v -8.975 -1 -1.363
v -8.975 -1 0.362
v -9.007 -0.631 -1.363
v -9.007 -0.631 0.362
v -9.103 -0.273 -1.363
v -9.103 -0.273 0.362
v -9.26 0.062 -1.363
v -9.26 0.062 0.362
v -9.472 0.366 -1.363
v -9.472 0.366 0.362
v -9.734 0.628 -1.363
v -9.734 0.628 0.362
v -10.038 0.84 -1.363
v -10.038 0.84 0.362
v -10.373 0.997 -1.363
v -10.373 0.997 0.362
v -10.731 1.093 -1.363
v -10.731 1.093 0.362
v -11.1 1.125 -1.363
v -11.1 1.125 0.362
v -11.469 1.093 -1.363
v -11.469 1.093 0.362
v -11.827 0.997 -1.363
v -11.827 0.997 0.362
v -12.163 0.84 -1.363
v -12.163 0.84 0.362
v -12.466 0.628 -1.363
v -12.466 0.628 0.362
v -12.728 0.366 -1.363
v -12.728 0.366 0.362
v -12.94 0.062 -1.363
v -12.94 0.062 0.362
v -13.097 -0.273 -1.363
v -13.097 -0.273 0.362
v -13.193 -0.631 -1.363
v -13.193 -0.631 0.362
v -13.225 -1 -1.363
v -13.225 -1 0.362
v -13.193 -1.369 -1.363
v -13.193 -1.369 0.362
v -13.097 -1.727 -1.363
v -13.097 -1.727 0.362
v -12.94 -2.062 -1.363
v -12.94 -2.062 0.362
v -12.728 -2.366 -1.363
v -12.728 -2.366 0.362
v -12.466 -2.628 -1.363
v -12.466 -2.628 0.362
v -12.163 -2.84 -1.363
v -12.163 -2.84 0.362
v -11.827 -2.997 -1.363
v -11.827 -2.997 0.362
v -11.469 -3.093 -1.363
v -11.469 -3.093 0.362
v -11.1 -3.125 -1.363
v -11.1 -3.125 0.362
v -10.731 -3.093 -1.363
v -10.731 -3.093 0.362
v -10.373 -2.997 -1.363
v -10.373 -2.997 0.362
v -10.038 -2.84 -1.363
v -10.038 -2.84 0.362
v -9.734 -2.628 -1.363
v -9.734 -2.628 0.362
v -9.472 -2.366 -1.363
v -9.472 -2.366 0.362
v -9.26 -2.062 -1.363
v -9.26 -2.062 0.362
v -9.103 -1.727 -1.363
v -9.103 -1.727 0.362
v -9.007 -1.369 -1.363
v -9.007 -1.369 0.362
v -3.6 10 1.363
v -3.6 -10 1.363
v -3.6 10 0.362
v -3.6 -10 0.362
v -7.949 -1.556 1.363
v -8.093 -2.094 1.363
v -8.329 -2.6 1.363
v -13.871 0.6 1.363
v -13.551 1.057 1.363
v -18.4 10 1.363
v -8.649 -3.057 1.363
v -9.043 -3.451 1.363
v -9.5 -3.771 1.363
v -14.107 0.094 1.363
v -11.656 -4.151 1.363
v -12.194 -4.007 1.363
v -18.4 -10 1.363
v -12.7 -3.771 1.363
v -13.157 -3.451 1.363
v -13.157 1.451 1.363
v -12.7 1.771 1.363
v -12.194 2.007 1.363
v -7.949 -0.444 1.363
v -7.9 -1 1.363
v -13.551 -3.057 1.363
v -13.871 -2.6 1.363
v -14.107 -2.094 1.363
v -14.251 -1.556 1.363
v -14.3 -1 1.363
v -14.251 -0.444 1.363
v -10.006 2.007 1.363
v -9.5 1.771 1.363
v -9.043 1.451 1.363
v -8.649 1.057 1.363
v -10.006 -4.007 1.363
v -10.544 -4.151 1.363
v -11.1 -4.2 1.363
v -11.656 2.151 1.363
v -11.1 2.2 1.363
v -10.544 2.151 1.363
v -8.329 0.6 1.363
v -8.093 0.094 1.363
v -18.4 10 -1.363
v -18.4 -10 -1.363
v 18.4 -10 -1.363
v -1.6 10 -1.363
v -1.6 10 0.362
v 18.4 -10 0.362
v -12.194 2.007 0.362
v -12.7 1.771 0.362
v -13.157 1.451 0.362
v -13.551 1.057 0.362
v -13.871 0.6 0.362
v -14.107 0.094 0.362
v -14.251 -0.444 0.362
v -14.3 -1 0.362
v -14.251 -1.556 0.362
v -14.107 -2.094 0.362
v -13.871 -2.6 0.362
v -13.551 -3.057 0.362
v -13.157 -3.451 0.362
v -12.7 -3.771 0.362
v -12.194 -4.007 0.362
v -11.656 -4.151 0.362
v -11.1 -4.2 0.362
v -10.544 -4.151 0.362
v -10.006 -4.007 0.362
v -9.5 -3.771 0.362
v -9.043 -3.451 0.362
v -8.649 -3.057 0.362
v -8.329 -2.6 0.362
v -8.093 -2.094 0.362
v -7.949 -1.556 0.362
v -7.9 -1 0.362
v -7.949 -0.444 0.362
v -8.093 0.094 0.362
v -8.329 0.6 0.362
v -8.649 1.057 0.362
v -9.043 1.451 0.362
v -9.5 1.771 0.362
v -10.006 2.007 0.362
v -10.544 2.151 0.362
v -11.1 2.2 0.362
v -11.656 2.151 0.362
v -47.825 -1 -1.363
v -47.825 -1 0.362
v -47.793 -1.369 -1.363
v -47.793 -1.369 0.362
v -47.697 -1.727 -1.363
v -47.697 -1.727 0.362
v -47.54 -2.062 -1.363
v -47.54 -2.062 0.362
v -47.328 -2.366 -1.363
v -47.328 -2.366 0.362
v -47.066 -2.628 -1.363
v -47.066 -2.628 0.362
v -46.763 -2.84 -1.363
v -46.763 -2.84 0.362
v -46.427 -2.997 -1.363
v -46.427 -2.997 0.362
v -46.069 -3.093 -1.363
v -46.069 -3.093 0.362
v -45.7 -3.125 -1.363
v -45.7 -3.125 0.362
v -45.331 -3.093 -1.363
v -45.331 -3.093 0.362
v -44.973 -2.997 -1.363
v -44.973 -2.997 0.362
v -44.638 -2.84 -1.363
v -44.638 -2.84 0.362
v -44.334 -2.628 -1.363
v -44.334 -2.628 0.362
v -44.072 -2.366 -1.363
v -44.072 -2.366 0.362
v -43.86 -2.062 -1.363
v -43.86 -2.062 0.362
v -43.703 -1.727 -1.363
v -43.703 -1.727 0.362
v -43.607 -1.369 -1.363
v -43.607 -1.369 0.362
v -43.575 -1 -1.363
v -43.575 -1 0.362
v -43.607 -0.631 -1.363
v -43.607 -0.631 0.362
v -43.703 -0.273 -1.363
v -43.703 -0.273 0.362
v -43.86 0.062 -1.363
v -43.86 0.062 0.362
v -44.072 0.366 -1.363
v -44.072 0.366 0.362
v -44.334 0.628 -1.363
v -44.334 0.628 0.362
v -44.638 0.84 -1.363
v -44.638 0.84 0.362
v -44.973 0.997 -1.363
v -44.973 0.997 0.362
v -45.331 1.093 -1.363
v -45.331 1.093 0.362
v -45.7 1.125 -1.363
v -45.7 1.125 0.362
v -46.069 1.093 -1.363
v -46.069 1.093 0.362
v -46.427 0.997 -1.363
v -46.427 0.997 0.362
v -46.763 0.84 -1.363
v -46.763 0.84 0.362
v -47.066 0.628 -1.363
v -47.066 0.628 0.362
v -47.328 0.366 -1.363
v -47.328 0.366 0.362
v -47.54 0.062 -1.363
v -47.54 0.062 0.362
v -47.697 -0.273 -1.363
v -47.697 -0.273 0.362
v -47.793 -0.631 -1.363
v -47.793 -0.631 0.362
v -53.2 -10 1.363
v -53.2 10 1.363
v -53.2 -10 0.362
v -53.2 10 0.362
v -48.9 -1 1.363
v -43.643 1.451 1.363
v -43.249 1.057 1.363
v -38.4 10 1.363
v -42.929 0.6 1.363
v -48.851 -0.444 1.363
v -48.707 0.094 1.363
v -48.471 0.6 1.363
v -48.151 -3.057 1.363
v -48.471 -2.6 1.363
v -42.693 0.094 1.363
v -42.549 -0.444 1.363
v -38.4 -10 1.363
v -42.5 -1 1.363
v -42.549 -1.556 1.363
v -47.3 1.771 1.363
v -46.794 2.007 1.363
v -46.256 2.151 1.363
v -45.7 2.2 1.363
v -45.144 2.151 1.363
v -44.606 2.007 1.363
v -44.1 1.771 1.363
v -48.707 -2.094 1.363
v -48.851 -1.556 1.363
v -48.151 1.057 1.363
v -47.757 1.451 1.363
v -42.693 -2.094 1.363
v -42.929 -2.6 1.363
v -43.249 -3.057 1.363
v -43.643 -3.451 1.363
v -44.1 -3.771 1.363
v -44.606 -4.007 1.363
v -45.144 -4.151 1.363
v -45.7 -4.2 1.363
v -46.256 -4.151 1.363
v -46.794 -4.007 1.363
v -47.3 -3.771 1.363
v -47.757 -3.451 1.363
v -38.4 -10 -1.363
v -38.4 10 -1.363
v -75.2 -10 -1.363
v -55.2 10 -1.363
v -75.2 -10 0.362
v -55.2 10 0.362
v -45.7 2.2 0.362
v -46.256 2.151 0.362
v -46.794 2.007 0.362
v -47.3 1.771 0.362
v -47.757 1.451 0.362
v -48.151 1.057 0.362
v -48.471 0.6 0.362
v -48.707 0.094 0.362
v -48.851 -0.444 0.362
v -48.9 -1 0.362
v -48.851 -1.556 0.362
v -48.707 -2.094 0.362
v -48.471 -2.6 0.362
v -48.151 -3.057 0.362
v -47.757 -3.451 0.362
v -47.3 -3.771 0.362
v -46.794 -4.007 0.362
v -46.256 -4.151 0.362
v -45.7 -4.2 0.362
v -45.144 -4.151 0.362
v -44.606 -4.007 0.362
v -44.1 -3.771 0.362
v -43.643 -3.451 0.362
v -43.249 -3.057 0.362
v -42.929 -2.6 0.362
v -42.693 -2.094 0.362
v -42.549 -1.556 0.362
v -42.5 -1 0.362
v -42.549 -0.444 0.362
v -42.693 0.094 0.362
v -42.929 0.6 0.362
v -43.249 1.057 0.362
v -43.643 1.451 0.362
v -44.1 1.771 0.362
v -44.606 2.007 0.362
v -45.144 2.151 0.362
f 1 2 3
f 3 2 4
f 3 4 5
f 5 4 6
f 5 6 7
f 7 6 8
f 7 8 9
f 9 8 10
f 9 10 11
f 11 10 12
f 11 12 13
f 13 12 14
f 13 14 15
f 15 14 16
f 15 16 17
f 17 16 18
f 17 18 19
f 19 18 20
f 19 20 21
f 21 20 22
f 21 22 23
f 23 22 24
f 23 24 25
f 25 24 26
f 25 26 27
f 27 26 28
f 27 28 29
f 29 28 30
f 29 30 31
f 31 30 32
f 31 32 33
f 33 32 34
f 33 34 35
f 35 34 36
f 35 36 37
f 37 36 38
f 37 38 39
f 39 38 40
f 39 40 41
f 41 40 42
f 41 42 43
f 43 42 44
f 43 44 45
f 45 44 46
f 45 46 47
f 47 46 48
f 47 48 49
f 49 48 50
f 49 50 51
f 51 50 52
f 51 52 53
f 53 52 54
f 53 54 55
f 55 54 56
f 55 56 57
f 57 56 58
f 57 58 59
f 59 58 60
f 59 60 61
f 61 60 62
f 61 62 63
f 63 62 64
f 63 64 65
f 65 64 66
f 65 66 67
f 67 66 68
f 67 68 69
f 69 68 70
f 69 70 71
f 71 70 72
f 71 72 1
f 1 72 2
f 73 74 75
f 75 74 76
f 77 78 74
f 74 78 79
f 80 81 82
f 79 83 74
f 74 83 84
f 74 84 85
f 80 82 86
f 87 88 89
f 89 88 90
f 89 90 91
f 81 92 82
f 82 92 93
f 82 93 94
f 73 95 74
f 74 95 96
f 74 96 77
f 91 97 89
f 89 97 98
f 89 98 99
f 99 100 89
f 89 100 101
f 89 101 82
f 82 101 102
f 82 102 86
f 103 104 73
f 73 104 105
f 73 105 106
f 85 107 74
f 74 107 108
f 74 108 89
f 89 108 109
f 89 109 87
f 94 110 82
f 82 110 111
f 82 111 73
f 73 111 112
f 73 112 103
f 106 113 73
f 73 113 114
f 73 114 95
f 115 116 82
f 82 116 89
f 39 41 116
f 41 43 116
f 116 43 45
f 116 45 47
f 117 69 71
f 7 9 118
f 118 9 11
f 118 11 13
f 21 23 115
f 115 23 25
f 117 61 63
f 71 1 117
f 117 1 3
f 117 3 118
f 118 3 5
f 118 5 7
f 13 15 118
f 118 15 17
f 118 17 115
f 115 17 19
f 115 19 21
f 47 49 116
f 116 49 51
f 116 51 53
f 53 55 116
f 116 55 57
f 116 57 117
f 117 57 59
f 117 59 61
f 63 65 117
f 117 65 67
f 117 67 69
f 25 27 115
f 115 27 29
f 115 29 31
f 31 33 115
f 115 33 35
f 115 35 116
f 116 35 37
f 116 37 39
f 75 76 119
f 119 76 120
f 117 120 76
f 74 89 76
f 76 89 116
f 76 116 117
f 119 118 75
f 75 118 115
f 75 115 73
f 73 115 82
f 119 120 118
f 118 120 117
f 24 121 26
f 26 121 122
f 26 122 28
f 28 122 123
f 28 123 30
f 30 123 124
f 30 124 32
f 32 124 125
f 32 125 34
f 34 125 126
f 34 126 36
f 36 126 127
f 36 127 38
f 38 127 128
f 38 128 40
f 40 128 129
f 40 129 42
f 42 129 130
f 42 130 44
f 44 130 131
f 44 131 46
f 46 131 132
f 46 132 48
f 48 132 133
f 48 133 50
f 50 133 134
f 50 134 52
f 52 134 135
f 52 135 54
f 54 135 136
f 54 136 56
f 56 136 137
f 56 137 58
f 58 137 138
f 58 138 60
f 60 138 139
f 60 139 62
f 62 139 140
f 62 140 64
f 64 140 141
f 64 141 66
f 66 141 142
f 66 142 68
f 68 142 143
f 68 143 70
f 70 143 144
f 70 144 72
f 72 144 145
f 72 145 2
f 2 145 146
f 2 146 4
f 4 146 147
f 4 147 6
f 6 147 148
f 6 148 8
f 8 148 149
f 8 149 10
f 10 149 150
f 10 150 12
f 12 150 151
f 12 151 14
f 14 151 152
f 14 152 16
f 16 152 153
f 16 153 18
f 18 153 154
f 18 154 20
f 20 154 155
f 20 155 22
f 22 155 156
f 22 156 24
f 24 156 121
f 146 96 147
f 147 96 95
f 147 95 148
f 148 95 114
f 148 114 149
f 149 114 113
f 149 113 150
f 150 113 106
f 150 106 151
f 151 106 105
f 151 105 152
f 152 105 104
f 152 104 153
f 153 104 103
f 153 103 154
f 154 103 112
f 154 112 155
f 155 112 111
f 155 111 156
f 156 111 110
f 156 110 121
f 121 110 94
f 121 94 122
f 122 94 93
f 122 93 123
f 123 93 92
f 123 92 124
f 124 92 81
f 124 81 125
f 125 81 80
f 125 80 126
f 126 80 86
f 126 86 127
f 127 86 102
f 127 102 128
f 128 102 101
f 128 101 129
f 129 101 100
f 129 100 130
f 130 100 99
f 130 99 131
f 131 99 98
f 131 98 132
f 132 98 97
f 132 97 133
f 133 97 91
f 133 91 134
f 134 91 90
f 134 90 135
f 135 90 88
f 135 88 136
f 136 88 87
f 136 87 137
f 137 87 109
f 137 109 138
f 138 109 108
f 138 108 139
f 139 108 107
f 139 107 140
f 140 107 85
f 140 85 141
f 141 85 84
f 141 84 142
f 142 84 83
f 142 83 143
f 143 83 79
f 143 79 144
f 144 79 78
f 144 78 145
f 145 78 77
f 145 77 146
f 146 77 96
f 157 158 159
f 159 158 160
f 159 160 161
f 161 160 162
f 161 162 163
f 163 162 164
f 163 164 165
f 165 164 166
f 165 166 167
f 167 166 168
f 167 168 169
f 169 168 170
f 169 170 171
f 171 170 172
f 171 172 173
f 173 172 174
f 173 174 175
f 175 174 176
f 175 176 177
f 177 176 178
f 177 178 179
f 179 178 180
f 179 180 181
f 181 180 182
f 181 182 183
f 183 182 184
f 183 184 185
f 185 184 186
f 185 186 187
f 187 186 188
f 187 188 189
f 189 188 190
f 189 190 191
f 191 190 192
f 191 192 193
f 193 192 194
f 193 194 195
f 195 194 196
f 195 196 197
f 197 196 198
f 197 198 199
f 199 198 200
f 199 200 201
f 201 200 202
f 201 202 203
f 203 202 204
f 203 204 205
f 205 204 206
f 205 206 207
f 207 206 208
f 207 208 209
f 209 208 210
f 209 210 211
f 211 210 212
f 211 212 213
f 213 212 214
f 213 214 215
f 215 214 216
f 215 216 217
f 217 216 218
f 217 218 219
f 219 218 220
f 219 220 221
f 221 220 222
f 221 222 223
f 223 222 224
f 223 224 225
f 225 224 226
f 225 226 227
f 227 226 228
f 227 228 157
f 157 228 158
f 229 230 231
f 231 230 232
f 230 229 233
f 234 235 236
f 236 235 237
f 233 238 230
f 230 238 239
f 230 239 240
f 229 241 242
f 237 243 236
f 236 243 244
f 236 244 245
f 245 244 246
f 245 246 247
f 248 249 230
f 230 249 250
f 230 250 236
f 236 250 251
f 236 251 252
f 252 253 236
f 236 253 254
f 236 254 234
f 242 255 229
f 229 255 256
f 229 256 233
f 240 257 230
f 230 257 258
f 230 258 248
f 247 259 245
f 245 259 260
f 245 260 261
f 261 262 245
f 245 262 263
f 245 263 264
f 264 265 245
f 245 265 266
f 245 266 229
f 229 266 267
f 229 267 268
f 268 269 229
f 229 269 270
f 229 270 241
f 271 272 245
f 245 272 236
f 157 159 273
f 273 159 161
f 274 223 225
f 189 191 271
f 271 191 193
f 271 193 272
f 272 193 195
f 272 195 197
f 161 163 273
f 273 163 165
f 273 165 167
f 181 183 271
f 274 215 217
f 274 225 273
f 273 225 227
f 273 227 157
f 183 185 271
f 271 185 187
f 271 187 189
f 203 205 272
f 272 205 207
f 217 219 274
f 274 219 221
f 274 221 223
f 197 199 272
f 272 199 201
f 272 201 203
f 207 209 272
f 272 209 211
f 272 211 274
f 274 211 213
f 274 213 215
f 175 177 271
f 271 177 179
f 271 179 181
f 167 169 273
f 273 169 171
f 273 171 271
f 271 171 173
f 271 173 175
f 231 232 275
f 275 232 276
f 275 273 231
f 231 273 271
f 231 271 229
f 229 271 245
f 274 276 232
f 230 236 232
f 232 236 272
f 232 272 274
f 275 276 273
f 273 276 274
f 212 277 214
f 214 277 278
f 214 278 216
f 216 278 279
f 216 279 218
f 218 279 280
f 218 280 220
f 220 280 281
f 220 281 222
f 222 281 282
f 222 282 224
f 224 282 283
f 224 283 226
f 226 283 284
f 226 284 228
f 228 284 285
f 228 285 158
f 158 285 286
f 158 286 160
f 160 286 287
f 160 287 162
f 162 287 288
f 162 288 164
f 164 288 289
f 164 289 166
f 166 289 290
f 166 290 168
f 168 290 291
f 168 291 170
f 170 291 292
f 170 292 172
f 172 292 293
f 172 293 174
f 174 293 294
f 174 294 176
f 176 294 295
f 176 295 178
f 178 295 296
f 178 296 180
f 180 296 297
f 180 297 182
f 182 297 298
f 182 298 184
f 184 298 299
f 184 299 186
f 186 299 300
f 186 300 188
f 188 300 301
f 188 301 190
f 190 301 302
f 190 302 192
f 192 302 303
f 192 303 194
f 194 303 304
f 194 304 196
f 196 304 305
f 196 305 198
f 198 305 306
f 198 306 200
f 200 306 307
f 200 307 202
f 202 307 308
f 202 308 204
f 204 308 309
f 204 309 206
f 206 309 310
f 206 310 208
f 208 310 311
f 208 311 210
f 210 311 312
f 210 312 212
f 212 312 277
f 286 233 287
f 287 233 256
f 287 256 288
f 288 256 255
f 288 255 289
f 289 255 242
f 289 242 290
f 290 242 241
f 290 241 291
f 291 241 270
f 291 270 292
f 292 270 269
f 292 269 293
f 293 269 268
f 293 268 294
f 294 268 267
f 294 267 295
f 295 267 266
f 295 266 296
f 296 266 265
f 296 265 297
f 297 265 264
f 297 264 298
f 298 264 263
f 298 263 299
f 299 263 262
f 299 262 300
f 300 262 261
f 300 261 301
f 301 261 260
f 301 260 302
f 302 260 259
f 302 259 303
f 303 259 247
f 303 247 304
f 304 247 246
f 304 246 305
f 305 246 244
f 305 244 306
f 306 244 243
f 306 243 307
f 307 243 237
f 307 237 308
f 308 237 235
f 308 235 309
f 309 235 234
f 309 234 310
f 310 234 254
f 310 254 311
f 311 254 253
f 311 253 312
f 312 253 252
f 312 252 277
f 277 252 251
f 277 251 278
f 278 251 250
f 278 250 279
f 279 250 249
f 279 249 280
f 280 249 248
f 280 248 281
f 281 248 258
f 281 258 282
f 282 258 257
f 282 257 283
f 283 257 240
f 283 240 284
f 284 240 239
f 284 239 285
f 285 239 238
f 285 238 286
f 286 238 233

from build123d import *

# Parameters (mm, degrees)
BOSS_EXTRUDE1_DEPTH      = 10
BOSS_EXTRUDE1_DEPTH_BACK = 10
CUT_EXTRUDE1_DEPTH       = 2
SKETCH3_R                = 2.125
CUT_EXTRUDE2_DEPTH       = 3
SKETCH4_R                = 3.2
CUT_EXTRUDE3_DEPTH       = 1


with BuildPart() as part:
    # Sketch1 → Boss-Extrude1 (new, two sides: drawn at the far end of the back side and taken through both)
    with BuildSketch(Plane(origin=(0, 0, 0), x_dir=(1, 0, 0), z_dir=(0, 1, 0)).offset(-BOSS_EXTRUDE1_DEPTH_BACK)):
        Polygon((-18.4, 1.3625), (18.4, 1.3625), (18.4, -0.3625), (-3.6, -0.3625), (-3.6, -1.3625), (-18.4, -1.3625), align=None)
    extrude(amount=BOSS_EXTRUDE1_DEPTH + BOSS_EXTRUDE1_DEPTH_BACK)

    # Sketch2 → Cut-Extrude1 (cut)
    with BuildSketch(Plane.XY.offset(0.3625)):
        Polygon((-1.6, 10), (18.4, -10), (18.4, 10), align=None)
    extrude(amount=-CUT_EXTRUDE1_DEPTH, mode=Mode.SUBTRACT)

    # Sketch3 → Cut-Extrude2 (cut)
    with BuildSketch(Plane.XY.offset(1.3625)):
        with Locations((-11.1, -1)):
            Circle(SKETCH3_R)
    extrude(amount=-CUT_EXTRUDE2_DEPTH, mode=Mode.SUBTRACT)

    # Sketch4 → Cut-Extrude3 (cut)
    with BuildSketch(Plane.XY.offset(1.3625)):
        with Locations((-11.1, -1)):
            Circle(SKETCH4_R)
    extrude(amount=-CUT_EXTRUDE3_DEPTH, mode=Mode.SUBTRACT)


with BuildPart() as body_2:
    # Mirror1: mirrored copy
    add(part.part.mirror(Plane.ZY.offset(28.4)))


solid = Compound([part.part, body_2.part])
